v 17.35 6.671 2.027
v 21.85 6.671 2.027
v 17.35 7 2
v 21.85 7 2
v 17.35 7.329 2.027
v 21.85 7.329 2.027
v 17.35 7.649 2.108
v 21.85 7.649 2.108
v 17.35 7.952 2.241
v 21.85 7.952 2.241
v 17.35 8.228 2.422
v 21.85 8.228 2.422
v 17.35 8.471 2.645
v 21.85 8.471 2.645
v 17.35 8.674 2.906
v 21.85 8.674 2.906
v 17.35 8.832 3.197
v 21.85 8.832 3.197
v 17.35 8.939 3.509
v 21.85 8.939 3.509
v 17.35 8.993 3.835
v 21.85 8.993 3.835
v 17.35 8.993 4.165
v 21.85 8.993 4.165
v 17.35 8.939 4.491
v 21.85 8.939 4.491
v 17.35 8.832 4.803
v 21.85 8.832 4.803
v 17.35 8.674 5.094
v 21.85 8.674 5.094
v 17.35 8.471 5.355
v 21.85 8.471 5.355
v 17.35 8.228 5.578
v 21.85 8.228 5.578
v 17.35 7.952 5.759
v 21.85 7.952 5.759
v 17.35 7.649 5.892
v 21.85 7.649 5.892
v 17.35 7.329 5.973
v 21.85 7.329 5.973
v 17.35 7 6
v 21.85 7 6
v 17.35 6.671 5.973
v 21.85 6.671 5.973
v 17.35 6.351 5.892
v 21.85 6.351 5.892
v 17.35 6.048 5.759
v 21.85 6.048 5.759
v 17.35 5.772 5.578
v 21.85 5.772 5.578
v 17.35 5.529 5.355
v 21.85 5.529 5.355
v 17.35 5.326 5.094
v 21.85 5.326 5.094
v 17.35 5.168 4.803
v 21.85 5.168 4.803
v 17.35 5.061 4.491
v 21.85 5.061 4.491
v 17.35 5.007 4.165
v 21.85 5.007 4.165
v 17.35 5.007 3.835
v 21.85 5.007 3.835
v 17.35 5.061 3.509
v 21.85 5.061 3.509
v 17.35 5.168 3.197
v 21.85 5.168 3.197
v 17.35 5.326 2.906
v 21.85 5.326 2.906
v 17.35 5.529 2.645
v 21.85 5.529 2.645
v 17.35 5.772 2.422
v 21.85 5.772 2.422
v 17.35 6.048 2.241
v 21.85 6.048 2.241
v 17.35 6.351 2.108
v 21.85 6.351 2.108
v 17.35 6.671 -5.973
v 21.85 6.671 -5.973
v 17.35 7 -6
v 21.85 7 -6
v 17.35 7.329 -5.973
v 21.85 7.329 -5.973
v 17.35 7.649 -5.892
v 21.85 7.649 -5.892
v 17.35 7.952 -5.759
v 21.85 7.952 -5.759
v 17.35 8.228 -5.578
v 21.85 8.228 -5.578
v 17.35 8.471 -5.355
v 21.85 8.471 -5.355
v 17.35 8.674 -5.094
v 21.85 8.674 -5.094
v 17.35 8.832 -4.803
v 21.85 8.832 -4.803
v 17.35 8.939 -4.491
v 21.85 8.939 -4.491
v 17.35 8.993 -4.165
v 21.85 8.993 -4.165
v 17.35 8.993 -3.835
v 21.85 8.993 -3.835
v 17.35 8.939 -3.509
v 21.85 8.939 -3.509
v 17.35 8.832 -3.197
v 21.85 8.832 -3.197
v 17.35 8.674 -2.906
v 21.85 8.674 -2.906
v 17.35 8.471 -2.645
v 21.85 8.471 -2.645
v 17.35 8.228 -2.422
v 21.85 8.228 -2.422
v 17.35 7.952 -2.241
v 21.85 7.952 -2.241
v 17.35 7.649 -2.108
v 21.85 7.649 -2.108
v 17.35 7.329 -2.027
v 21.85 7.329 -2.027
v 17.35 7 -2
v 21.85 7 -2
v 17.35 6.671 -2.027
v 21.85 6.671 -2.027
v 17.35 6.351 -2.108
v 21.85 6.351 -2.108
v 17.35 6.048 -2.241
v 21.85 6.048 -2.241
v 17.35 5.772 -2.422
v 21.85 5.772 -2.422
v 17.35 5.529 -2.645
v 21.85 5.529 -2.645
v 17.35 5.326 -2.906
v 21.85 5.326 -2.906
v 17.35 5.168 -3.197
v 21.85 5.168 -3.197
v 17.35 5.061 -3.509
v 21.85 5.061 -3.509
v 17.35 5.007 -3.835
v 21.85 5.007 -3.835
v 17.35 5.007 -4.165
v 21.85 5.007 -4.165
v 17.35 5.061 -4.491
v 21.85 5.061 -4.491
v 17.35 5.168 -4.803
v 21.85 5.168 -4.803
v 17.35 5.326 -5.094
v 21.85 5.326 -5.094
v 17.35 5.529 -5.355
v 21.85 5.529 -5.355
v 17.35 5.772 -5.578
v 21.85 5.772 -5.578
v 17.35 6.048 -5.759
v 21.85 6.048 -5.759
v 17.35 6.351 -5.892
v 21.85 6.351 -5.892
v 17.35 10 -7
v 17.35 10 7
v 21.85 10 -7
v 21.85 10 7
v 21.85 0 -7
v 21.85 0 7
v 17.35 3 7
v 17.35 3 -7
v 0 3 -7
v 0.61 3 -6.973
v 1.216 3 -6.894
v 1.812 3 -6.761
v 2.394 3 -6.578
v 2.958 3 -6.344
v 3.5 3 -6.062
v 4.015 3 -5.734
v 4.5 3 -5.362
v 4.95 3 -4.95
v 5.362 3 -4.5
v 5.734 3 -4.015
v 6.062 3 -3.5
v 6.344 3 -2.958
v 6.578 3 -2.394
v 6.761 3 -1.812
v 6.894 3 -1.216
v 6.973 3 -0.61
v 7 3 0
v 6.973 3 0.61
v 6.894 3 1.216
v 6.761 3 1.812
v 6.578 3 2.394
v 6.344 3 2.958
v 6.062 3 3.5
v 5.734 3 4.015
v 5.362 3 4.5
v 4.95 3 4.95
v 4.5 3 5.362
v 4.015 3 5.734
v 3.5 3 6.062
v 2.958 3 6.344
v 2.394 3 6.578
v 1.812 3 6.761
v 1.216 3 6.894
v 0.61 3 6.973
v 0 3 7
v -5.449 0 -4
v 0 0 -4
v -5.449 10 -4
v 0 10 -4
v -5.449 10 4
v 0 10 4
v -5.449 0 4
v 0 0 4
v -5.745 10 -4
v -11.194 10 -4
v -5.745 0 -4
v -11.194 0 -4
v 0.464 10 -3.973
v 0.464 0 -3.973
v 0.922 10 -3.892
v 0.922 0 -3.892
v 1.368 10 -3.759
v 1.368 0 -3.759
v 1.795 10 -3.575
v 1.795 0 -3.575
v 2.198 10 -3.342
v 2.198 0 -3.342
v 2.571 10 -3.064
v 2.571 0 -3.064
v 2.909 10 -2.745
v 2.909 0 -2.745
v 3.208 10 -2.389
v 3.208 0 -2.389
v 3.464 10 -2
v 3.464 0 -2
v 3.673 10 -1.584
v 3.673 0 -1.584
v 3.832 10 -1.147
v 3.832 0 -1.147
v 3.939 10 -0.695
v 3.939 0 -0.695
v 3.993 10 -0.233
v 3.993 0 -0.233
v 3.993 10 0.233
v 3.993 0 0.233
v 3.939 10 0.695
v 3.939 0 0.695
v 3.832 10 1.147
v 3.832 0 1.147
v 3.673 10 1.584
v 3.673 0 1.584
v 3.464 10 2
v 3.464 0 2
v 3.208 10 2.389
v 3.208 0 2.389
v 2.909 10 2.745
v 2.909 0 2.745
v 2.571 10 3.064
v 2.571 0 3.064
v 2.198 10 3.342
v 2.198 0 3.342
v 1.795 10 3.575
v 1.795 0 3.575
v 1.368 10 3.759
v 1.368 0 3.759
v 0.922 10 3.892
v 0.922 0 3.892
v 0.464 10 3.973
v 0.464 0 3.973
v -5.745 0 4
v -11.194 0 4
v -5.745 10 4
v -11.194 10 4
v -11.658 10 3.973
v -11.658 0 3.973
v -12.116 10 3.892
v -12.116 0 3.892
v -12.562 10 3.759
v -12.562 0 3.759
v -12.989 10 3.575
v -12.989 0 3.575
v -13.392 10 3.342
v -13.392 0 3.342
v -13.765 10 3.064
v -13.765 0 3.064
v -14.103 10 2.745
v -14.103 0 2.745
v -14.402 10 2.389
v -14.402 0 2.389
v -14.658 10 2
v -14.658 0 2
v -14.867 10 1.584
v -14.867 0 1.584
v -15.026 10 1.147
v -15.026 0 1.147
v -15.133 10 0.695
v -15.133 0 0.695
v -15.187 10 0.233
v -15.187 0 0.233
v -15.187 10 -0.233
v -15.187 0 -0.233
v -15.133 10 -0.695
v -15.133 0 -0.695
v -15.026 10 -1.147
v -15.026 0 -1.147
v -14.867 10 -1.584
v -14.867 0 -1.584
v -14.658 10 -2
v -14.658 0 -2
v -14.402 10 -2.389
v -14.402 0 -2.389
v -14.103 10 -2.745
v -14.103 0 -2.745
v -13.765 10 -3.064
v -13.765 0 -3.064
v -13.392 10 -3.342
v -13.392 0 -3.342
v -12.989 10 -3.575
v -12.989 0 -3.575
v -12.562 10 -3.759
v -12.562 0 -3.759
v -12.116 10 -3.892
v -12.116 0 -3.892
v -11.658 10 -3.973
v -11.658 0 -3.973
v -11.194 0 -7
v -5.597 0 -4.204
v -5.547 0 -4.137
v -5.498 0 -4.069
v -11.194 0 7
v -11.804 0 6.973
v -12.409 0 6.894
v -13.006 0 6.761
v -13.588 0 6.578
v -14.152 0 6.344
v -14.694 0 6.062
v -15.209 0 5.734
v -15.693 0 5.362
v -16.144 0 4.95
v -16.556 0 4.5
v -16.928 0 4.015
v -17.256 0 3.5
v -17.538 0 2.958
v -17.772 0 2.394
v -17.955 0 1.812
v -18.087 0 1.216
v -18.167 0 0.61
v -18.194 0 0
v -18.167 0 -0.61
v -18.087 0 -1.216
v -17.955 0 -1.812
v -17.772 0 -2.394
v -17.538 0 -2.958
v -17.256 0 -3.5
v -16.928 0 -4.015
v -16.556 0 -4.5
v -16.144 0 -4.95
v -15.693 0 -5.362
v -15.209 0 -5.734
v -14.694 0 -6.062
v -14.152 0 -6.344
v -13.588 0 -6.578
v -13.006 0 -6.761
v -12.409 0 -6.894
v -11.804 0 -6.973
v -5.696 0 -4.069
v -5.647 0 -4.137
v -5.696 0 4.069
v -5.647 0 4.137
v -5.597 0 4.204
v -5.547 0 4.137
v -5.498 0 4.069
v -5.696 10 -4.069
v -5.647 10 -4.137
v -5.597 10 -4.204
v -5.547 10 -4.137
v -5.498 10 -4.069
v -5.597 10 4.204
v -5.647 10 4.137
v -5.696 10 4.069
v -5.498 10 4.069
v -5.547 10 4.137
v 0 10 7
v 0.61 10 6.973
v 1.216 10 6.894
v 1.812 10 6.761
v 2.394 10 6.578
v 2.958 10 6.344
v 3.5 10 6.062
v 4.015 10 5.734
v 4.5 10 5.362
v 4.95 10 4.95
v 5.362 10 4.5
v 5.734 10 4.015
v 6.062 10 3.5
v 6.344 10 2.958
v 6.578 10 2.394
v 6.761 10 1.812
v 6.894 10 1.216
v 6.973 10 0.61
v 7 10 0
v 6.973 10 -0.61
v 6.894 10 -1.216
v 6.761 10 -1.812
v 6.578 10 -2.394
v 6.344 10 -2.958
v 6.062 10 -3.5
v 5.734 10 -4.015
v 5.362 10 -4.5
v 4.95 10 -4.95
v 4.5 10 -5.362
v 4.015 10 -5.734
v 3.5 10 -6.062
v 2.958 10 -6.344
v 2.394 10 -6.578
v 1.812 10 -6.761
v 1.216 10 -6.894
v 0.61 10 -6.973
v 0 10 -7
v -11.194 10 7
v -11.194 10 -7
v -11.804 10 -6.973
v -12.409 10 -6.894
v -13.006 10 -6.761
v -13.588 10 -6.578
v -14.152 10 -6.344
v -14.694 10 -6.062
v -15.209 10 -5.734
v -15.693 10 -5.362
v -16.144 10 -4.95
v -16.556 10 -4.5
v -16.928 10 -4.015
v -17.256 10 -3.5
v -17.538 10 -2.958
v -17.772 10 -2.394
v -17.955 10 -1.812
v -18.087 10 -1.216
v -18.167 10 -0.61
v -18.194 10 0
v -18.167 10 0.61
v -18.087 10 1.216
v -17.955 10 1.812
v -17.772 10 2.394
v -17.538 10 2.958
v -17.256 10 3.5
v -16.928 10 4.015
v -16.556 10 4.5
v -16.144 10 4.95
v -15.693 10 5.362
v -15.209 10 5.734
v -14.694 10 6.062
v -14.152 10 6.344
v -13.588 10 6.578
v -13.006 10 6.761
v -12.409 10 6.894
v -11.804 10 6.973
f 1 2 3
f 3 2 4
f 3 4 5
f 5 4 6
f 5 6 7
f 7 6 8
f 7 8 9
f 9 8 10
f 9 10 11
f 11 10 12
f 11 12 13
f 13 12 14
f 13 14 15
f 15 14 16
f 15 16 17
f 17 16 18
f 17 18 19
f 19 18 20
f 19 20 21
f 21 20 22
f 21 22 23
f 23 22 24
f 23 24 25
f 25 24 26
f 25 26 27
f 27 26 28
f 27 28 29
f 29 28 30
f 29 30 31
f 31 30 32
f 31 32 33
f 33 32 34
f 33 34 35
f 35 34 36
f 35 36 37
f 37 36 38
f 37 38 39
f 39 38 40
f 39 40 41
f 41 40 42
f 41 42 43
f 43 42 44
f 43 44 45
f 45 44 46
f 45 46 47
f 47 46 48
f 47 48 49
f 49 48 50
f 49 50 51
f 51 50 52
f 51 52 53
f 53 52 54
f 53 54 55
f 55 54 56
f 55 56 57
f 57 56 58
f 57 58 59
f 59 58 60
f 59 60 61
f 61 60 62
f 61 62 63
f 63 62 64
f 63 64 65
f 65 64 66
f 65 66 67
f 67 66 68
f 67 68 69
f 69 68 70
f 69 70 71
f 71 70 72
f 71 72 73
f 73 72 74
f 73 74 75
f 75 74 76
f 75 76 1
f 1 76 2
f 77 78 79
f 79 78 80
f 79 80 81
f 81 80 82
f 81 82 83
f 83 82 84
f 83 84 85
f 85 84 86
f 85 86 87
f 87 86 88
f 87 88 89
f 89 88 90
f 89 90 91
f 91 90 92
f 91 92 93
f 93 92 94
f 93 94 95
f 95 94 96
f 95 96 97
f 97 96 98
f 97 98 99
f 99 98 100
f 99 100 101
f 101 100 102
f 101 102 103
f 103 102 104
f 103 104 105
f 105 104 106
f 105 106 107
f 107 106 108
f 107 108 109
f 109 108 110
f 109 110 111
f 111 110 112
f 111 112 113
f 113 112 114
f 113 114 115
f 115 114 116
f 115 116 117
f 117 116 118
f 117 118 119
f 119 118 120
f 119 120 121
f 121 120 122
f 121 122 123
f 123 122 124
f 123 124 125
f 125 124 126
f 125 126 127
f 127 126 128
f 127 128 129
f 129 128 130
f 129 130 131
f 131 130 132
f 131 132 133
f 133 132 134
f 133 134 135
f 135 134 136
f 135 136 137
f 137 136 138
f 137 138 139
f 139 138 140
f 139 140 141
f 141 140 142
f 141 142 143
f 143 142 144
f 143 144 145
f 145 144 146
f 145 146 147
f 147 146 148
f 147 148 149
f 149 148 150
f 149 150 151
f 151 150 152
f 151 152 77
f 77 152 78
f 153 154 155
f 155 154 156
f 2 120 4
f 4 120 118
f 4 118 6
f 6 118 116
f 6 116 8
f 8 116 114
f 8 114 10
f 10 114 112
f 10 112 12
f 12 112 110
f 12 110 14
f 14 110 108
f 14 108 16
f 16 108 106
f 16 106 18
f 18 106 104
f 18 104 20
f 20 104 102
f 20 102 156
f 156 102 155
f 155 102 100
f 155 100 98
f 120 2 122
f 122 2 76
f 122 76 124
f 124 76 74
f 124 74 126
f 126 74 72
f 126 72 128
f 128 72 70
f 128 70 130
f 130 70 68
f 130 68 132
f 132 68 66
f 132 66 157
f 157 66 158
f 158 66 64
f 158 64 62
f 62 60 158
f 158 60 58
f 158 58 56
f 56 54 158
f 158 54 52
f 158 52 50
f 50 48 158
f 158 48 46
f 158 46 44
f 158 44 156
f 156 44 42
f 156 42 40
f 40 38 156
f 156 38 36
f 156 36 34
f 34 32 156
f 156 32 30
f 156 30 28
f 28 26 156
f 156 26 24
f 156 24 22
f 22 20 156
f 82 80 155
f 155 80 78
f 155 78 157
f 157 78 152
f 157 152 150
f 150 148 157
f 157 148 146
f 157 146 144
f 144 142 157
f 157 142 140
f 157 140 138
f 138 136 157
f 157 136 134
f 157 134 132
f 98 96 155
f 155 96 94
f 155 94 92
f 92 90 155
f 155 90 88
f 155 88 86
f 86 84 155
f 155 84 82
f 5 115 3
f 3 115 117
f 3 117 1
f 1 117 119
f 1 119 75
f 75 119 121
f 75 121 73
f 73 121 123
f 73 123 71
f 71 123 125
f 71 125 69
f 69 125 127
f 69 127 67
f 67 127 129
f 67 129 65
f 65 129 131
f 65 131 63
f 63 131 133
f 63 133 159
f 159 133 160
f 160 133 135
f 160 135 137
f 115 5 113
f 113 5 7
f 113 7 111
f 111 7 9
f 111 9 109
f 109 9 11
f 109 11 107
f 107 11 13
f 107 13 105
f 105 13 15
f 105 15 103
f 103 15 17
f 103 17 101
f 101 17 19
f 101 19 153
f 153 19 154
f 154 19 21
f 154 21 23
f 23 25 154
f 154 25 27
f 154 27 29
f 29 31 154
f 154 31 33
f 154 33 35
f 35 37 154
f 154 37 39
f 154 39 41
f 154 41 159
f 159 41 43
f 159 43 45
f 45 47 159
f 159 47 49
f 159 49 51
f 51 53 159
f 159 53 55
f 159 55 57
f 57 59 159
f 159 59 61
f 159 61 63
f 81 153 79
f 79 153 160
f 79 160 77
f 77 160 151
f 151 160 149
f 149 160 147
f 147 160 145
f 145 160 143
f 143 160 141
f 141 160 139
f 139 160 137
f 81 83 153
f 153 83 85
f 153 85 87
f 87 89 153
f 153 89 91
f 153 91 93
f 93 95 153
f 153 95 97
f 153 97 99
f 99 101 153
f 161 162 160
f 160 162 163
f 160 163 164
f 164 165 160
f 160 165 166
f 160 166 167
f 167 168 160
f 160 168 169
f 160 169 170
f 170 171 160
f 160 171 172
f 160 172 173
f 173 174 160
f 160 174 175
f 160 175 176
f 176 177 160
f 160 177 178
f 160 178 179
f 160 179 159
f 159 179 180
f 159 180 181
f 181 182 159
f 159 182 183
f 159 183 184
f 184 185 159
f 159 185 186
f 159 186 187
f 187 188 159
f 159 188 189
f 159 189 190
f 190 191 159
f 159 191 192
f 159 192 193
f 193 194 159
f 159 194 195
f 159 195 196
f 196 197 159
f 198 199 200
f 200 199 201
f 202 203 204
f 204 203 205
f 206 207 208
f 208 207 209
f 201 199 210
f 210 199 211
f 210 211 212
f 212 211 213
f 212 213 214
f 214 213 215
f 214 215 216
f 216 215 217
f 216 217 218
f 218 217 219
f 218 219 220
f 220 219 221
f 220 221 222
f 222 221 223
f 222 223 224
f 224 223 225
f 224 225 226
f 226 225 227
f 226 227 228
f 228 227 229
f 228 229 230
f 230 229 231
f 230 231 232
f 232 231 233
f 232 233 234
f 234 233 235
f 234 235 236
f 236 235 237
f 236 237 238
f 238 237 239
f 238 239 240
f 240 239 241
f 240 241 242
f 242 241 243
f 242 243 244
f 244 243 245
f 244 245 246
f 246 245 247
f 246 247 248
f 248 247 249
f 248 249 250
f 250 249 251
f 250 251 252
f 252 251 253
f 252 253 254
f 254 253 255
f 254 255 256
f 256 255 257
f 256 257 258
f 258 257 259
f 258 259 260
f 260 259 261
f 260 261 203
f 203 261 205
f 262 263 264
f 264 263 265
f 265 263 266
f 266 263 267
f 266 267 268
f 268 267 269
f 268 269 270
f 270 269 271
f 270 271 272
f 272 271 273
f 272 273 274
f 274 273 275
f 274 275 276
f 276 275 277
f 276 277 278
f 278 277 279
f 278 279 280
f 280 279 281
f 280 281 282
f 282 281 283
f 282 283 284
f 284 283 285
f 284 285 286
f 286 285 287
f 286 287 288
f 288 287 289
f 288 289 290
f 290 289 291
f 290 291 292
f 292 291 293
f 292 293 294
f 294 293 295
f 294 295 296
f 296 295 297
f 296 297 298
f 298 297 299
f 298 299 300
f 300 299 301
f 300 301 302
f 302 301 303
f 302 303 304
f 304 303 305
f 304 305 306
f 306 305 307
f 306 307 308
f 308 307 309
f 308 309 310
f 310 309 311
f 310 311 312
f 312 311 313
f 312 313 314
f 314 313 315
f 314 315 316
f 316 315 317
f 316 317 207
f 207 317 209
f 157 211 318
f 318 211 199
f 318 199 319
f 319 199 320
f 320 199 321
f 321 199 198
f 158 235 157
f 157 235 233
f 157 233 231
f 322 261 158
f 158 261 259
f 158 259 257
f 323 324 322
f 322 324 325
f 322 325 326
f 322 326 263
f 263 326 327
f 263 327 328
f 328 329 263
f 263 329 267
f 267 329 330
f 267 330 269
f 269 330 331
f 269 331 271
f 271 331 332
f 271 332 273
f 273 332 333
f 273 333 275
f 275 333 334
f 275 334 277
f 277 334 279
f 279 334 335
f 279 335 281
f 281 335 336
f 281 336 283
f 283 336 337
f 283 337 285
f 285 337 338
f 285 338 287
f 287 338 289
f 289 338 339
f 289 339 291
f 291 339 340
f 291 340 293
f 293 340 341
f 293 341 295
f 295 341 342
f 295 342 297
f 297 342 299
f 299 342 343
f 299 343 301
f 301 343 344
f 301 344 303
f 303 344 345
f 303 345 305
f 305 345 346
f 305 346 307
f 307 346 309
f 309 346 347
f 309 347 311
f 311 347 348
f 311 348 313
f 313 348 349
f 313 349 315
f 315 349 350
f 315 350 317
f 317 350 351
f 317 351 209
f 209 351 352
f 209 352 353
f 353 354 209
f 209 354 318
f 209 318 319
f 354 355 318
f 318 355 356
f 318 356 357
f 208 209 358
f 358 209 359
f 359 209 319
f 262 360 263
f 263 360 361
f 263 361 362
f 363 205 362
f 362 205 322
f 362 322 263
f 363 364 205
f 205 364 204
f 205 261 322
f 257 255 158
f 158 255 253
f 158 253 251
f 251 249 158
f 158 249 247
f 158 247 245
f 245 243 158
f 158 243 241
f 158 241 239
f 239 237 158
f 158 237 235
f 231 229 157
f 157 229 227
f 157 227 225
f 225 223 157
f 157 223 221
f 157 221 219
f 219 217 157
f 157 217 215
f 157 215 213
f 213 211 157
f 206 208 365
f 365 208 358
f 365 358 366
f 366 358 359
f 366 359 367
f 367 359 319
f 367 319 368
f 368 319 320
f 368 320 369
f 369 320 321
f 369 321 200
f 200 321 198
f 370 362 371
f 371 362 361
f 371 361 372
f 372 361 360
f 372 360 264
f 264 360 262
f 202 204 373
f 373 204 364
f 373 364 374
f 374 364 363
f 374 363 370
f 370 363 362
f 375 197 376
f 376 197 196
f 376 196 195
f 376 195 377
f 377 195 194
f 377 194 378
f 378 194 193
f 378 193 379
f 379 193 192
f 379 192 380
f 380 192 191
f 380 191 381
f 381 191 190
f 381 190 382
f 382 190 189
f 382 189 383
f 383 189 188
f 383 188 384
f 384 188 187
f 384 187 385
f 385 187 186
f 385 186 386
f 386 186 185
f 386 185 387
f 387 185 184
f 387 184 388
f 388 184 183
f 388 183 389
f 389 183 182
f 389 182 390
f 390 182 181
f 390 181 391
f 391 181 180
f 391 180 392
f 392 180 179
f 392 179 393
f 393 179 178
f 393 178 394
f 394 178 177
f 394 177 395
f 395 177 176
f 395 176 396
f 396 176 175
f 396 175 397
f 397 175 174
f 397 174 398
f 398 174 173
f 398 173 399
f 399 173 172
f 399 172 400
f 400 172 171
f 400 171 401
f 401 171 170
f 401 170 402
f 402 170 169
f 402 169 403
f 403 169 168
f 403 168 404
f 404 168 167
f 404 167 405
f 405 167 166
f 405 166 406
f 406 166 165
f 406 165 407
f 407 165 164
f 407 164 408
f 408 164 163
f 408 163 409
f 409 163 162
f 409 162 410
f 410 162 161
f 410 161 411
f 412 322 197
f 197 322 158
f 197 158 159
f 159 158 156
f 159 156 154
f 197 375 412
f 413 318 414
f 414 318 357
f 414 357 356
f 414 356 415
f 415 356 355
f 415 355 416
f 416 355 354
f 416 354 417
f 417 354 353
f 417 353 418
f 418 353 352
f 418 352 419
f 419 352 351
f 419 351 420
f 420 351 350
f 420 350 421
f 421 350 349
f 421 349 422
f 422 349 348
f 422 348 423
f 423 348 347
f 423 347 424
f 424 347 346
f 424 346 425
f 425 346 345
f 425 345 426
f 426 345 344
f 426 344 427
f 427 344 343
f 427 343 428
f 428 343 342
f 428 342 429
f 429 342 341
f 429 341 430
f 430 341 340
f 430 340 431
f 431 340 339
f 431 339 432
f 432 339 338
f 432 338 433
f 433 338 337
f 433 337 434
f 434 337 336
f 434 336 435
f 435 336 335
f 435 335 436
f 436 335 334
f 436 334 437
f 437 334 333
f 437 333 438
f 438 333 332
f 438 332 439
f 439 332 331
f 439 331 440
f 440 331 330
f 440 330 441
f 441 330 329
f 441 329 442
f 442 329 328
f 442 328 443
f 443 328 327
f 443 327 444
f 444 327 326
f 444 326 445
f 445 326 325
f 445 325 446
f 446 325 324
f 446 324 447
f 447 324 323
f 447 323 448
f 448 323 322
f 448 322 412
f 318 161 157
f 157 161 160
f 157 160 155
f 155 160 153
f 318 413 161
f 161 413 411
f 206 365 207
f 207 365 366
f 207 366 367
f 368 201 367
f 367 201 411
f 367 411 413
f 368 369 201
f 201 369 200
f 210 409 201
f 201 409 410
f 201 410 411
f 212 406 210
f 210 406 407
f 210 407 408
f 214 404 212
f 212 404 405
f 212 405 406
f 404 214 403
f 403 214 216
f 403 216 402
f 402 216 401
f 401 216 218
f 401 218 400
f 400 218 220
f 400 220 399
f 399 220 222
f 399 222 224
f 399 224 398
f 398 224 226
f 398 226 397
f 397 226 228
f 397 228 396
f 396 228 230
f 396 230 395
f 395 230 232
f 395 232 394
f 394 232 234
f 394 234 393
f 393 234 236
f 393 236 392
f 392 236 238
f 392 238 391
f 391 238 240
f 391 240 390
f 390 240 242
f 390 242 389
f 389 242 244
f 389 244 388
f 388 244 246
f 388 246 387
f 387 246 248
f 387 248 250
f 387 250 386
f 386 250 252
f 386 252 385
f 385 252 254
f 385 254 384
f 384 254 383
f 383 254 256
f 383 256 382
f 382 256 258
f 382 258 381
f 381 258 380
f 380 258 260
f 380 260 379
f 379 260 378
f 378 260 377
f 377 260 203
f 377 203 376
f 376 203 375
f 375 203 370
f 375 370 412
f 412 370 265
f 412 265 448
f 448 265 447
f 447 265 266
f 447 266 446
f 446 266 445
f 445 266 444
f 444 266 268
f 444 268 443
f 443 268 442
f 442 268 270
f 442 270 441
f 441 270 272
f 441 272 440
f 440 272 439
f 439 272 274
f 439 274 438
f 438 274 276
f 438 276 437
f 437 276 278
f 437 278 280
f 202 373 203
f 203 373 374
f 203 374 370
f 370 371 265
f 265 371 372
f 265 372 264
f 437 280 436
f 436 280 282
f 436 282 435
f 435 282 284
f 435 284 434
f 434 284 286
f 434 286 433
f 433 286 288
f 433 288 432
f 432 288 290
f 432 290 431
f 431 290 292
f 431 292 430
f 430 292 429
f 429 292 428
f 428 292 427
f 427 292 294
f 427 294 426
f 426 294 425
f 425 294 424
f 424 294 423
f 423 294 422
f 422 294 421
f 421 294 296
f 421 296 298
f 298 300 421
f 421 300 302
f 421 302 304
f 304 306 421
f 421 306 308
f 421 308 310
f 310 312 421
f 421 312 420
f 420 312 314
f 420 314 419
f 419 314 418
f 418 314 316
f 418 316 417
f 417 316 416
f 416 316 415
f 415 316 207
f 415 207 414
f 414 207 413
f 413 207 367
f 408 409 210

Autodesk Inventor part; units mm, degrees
ref_plane "YZ Plane" through (0, 0, 0) normal (1, 0, 0) x (0, 1, 0)
ref_plane "XZ Plane" through (0, 0, 0) normal (0, 1, 0) x (-1, 0, 0)
ref_plane "XY Plane" through (0, 0, 0) normal (0, 0, 1) x (1, 0, 0)
sketch "Sketch1" plane through (0, 0, 0) normal (0, 1, 0) x (-1, 0, 0)
  arc A0 (0, 4) -> (0, -4) centre (0, 0) ccw
  arc A1 (11.1938, -4) -> (11.1938, 4) centre (11.1938, 0) ccw
  line L0 (11.1938, -4) -> (0, -4)
  line L1 (11.1938, 4) -> (0, 4)
  line L2 (11.1938, -7) -> (0, -7)
  line L3 (0, 7) -> (11.1938, 7)
  arc A2 (5.5969, 4.2041) -> (5.4492, 4) centre (11.1938, 0) ccw
  arc A3 (5.7446, 4) -> (5.5969, 4.2041) centre (0, 0) ccw
  arc A4 (5.4492, -4) -> (5.5969, -4.2041) centre (11.1938, 0) ccw
  arc A5 (11.1938, -7) -> (11.1938, 7) centre (11.1938, 0) ccw
  arc A6 (0, 7) -> (0, -7) centre (0, 0) ccw
  arc A7 (5.5969, -4.2041) -> (5.7446, -4) centre (0, 0) ccw
  dimension "d0" = 8
  dimension "d1" = 8
extrude "Extrusion1" add sketch "Sketch1" along normal blind 10
sketch "Sketch2" plane through (0, 0, 0) normal (0, -1, 0) x (1, 0, 0)
  arc A0 (0, -7) -> (0, 7) centre (0, 0) ccw
  arc A1 (0, -4) -> (0, 4) centre (0, 0) ccw
  line L0 (0, -7) -> (0, -4)
  line L1 (0, 4) -> (0, 7)
  line L2 (0, -7) -> (-11.1938, -7) projected
  line L3 (0, -7) -> (17.35, -7)
  arc A2 (0, -7) -> (0, 7) centre (0, 0) ccw projected
  line L4 (0, 7) -> (17.35, 7)
  line L5 (17.35, 7) -> (17.35, -7)
  dimension "d6" = 17.35
extrude "Extrusion2" add sketch "Sketch2" against normal blind 3 contours A0 L4 L5 L3
sketch "Sketch3" plane through (17.35, 0, 7) normal (1, 0, 0) x (0, 0, -1)
  line L0 (14, 10) -> (0, 10) projected
  line L1 (0, 0) -> (14, 0)
  line L2 (14, 0) -> (14, 10)
  line L3 (14, 10) -> (0, 10)
  line L4 (0, 10) -> (0, 0)
  point P0 (7, 0)
extrude "Extrusion3" add sketch "Sketch3" along normal blind 4.5
sketch "Sketch4" plane through (21.85, 0, 7) normal (1, 0, 0) x (0, 0, -1)
  circle A0 centre (3, 7) radius 2
  circle A1 centre (11, 7) radius 2
  line L0 (14, 10) -> (0, 10) projected
  line L1 (0, 10) -> (0, 0) projected
  line L2 (14, 0) -> (14, 10) projected
  point P0 (7, 0)
  dimension "d11" = 4
  dimension "d12" = 4
  dimension "d13" = 3
  dimension "d14" = 3
  dimension "d15" = 3
  dimension "d16" = 3
extrude "Extrusion4" cut sketch "Sketch4" against normal blind 5
properties part number "bedtiedown2"
